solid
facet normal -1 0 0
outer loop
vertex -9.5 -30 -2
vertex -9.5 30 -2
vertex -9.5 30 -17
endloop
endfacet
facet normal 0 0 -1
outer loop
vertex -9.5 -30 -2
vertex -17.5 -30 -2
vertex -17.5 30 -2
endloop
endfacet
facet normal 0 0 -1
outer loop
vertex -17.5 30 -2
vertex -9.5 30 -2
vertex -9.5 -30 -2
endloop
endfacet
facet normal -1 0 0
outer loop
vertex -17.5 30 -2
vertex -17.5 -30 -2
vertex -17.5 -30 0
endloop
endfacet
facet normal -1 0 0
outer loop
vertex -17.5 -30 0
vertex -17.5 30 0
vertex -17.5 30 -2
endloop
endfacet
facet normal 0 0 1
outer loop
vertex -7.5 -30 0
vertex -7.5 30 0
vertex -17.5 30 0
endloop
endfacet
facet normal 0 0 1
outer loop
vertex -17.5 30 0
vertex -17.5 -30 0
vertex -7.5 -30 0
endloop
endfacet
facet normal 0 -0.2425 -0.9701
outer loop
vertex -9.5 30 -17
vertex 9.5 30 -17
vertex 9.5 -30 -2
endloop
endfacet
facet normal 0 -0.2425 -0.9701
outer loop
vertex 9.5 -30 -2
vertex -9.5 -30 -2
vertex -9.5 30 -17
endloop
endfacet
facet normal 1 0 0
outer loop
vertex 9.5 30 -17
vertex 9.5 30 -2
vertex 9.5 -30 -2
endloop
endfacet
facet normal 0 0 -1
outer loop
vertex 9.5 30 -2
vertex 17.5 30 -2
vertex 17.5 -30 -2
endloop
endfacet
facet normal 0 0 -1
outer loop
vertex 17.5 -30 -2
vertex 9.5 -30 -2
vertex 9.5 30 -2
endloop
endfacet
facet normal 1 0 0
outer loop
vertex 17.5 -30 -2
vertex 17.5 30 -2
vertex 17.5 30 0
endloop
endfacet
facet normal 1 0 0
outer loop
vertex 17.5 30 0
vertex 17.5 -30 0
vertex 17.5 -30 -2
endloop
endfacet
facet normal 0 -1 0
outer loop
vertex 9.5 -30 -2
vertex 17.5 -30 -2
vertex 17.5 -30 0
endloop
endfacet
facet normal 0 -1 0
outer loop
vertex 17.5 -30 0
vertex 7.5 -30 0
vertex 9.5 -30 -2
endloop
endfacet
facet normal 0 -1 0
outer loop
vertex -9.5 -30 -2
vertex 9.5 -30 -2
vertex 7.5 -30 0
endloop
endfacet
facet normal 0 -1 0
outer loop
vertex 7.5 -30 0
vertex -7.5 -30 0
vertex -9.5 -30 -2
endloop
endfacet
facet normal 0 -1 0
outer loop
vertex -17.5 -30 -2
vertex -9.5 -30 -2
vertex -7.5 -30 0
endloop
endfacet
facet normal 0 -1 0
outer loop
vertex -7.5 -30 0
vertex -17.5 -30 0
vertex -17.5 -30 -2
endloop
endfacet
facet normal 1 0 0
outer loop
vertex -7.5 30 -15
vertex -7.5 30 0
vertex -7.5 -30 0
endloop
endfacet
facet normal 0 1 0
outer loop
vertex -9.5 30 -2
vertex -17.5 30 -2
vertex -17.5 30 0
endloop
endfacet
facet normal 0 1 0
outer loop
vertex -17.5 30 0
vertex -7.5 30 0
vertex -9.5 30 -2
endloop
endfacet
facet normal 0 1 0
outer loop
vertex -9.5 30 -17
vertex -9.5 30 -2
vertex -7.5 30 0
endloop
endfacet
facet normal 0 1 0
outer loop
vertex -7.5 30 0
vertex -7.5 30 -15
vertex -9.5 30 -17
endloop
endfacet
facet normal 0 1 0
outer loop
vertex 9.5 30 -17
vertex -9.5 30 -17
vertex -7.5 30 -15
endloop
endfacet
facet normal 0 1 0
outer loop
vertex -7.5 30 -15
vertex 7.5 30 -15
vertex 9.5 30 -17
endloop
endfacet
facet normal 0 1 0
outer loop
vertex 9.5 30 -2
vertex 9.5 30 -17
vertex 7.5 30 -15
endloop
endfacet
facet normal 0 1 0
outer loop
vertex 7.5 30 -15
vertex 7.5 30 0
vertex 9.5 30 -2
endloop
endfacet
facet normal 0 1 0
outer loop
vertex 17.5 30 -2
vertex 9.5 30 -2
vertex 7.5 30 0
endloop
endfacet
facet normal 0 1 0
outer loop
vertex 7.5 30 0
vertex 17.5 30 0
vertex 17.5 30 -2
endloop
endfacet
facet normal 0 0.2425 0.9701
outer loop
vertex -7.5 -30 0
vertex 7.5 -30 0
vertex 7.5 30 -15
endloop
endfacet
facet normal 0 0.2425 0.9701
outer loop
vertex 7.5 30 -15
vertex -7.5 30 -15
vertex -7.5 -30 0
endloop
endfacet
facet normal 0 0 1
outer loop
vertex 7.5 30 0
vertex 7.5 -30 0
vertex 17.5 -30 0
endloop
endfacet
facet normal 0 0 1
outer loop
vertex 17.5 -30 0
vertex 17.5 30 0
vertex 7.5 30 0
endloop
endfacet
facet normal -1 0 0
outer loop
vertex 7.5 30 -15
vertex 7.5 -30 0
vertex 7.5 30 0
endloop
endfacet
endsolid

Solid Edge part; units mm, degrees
sketch "Sketch1" plane through (0, 0, 0) normal (0, 0, 1) x (1, 0, 0)
  line L0 (-9.5, -30) -> (9.5, -30)
  line L1 (9.5, -30) -> (9.5, 30)
  line L2 (9.5, 30) -> (-9.5, 30)
  line L3 (-9.5, 30) -> (-9.5, -30)
extrude "Protrusion1" add sketch "Sketch1" against normal blind 25
sketch "Sketch2" plane through (0, 0, 0) normal (0, 0, 1) x (-1, 0, 0)
  line L0 (-7.5, -30) -> (7.5, -30)
  line L1 (7.5, -30) -> (7.5, 30)
  line L2 (7.5, 30) -> (-7.5, 30)
  line L3 (-7.5, 30) -> (-7.5, -30)
extrude "ExtrudedCutout_1" cut sketch "Sketch2" along normal mid plane 109.0944
sketch "Sketch3" plane through (9.5, 0, -12.5) normal (1, 0, 0) x (0, 1, 0)
  line L0 (-30, 10.5) -> (30, 10.5)
  line L1 (30, 10.5) -> (30, 12.5)
  line L2 (30, 12.5) -> (-30, 12.5)
  line L3 (-30, 12.5) -> (-30, 10.5)
extrude "ExtrudedProtrusion_2" add sketch "Sketch3" along normal blind 8
sketch "Sketch4" plane through (-9.5, 0, -12.5) normal (-1, 0, 0) x (0, -1, 0)
  line L0 (-30, 12.5) -> (30, 12.5)
  line L1 (30, 12.5) -> (30, 10.5)
  line L2 (30, 10.5) -> (-30, 10.5)
  line L3 (-30, 10.5) -> (-30, 12.5)
extrude "ExtrudedProtrusion_3" add sketch "Sketch4" along normal blind 8
sketch "Sketch5" plane through (-7.5, 0, -12.5) normal (1, 0, 0) x (0, 1, 0)
  line L0 (30, -2.5) -> (-30, 12.5)
  line L1 (-30, 12.5) -> (-30, -12.5)
  line L2 (-30, -12.5) -> (30, -12.5)
  line L3 (30, -12.5) -> (30, -2.5)
extrude "Protrusion2" add sketch "Sketch5" along normal blind 15
sketch "Sketch6" plane through (9.5, 0, -13.5) normal (1, 0, 0) x (0, 1, 0)
  line L0 (30, -3.5) -> (-30, -3.5)
  line L1 (-30, -3.5) -> (-30, -11.5)
  line L2 (-30, -11.5) -> (30, -11.5)
  line L3 (30, -11.5) -> (30, -3.5)
extrude "ExtrudedCutout_2" cut sketch "Sketch6" along normal mid plane 141.9201
sketch "Sketch7" plane through (9.5, 0, -9.5) normal (1, 0, 0) x (0, 1, 0)
  line L0 (-30, 7.5) -> (30, -7.5)
  line L1 (30, -7.5) -> (-30, -7.5)
  line L2 (-30, -7.5) -> (-30, 7.5)
extrude "ExtrudedCutout_3" cut sketch "Sketch7" along normal mid plane 158.0788
